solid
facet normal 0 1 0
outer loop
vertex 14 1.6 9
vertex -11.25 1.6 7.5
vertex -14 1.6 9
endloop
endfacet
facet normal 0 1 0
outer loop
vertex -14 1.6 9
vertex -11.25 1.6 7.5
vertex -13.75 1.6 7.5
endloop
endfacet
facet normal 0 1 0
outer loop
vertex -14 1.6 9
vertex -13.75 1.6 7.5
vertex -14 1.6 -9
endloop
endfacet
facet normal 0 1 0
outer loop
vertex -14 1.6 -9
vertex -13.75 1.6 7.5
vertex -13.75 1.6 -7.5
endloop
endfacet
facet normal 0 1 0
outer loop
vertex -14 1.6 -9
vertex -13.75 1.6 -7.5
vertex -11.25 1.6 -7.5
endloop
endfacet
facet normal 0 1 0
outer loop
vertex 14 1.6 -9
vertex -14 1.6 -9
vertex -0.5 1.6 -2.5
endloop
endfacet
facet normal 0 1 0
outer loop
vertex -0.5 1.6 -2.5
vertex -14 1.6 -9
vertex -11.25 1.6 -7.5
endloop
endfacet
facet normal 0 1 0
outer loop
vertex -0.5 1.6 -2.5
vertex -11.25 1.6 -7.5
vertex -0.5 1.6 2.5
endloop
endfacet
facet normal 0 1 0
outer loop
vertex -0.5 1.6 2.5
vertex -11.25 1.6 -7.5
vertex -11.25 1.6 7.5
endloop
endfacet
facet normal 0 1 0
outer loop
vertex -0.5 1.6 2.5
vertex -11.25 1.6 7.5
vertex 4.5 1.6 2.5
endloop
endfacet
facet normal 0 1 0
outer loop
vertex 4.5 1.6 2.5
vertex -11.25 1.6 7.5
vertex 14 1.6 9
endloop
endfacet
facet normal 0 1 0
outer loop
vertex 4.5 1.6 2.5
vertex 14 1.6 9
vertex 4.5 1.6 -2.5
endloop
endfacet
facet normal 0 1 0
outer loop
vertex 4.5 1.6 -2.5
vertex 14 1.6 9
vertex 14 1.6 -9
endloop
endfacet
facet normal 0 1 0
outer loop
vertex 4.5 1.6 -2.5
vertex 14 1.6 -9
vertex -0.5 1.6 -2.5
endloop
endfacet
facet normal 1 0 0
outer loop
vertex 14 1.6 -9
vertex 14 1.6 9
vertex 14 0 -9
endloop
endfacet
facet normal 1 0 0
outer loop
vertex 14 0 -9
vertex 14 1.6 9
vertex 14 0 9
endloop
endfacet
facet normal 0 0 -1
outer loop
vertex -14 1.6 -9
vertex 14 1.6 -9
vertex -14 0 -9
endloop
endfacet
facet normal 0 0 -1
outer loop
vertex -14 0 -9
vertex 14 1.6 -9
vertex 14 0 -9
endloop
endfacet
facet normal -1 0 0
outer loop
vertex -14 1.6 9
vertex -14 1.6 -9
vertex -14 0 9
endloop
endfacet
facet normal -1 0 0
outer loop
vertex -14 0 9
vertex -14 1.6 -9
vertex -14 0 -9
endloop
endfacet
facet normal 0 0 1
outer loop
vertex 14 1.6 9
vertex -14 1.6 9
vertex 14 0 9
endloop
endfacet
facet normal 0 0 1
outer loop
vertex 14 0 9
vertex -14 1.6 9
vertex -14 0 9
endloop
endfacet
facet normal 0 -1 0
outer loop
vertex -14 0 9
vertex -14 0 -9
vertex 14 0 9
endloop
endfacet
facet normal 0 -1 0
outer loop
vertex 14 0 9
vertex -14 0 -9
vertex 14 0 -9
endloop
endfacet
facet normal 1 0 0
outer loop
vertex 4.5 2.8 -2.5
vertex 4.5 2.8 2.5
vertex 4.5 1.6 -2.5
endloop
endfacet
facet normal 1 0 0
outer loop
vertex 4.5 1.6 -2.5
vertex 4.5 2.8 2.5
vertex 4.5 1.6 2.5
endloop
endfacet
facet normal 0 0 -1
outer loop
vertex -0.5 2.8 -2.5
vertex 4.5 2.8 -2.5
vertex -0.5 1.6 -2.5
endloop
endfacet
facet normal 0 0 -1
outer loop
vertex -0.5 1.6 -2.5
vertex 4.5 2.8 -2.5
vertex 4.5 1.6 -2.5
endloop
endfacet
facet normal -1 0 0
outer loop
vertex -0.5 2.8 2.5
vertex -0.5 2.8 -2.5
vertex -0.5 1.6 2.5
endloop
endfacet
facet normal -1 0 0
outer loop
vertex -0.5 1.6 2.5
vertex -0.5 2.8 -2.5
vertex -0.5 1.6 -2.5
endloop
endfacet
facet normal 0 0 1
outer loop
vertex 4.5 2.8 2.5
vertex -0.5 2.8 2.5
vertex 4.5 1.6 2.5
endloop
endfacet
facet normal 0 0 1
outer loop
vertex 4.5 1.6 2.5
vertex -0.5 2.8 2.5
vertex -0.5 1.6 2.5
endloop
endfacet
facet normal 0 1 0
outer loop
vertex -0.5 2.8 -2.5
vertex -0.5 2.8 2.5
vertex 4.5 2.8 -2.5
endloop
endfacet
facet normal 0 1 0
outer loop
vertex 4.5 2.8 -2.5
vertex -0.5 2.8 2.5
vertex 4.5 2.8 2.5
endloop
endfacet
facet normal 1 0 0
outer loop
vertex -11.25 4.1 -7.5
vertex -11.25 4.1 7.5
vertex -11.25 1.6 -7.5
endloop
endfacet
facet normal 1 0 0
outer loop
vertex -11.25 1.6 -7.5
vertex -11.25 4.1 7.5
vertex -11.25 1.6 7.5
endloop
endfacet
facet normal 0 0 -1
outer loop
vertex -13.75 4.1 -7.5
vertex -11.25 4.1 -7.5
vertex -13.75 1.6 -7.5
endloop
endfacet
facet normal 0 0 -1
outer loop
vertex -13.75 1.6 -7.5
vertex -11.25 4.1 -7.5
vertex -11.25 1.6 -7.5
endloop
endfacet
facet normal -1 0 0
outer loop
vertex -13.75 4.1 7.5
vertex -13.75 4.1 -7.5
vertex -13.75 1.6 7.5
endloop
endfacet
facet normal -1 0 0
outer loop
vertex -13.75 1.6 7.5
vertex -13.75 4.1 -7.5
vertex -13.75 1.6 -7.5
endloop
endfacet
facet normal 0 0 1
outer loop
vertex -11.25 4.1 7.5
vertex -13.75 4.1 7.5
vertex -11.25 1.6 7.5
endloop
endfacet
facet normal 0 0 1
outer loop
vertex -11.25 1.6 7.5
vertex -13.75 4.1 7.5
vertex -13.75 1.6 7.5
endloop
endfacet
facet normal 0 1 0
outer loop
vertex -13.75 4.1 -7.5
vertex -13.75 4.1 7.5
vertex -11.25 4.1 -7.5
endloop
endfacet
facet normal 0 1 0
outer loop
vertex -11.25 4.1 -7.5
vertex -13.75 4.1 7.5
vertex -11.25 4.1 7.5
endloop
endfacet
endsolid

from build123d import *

# Parameters (mm, degrees)
SKETCH1_W          = 28
SKETCH1_H          = 18
PCB_DEPTH          = 1.6
ADS1115_CHIP_START = 1.6
SKETCH2_W          = 5
SKETCH2_H          = 5
ADS1115_CHIP_DEPTH = 1.2
HEADER_START       = 1.6
SKETCH3_W          = 2.5
SKETCH3_H          = 15
HEADER_DEPTH       = 2.5


with BuildPart() as part:
    # Sketch1 → PCB (new body)
    with BuildSketch(Plane(origin=(0, 0, 0), x_dir=(1, 0, 0), z_dir=(0, 1, 0))):
        Rectangle(SKETCH1_W, SKETCH1_H)
    extrude(amount=PCB_DEPTH)

    # Sketch2 → ADS1115_Chip (add)
    with BuildSketch(Plane(origin=(0, 0, 0), x_dir=(1, 0, 0), z_dir=(0, 1, 0)).offset(ADS1115_CHIP_START)):
        with Locations((2, 0)):
            Rectangle(SKETCH2_W, SKETCH2_H)
    extrude(amount=ADS1115_CHIP_DEPTH)

    # Sketch3 → Header (add)
    with BuildSketch(Plane(origin=(0, 0, 0), x_dir=(1, 0, 0), z_dir=(0, 1, 0)).offset(HEADER_START)):
        with Locations((-12.5, 0)):
            Rectangle(SKETCH3_W, SKETCH3_H)
    extrude(amount=HEADER_DEPTH)


solid = part.part
